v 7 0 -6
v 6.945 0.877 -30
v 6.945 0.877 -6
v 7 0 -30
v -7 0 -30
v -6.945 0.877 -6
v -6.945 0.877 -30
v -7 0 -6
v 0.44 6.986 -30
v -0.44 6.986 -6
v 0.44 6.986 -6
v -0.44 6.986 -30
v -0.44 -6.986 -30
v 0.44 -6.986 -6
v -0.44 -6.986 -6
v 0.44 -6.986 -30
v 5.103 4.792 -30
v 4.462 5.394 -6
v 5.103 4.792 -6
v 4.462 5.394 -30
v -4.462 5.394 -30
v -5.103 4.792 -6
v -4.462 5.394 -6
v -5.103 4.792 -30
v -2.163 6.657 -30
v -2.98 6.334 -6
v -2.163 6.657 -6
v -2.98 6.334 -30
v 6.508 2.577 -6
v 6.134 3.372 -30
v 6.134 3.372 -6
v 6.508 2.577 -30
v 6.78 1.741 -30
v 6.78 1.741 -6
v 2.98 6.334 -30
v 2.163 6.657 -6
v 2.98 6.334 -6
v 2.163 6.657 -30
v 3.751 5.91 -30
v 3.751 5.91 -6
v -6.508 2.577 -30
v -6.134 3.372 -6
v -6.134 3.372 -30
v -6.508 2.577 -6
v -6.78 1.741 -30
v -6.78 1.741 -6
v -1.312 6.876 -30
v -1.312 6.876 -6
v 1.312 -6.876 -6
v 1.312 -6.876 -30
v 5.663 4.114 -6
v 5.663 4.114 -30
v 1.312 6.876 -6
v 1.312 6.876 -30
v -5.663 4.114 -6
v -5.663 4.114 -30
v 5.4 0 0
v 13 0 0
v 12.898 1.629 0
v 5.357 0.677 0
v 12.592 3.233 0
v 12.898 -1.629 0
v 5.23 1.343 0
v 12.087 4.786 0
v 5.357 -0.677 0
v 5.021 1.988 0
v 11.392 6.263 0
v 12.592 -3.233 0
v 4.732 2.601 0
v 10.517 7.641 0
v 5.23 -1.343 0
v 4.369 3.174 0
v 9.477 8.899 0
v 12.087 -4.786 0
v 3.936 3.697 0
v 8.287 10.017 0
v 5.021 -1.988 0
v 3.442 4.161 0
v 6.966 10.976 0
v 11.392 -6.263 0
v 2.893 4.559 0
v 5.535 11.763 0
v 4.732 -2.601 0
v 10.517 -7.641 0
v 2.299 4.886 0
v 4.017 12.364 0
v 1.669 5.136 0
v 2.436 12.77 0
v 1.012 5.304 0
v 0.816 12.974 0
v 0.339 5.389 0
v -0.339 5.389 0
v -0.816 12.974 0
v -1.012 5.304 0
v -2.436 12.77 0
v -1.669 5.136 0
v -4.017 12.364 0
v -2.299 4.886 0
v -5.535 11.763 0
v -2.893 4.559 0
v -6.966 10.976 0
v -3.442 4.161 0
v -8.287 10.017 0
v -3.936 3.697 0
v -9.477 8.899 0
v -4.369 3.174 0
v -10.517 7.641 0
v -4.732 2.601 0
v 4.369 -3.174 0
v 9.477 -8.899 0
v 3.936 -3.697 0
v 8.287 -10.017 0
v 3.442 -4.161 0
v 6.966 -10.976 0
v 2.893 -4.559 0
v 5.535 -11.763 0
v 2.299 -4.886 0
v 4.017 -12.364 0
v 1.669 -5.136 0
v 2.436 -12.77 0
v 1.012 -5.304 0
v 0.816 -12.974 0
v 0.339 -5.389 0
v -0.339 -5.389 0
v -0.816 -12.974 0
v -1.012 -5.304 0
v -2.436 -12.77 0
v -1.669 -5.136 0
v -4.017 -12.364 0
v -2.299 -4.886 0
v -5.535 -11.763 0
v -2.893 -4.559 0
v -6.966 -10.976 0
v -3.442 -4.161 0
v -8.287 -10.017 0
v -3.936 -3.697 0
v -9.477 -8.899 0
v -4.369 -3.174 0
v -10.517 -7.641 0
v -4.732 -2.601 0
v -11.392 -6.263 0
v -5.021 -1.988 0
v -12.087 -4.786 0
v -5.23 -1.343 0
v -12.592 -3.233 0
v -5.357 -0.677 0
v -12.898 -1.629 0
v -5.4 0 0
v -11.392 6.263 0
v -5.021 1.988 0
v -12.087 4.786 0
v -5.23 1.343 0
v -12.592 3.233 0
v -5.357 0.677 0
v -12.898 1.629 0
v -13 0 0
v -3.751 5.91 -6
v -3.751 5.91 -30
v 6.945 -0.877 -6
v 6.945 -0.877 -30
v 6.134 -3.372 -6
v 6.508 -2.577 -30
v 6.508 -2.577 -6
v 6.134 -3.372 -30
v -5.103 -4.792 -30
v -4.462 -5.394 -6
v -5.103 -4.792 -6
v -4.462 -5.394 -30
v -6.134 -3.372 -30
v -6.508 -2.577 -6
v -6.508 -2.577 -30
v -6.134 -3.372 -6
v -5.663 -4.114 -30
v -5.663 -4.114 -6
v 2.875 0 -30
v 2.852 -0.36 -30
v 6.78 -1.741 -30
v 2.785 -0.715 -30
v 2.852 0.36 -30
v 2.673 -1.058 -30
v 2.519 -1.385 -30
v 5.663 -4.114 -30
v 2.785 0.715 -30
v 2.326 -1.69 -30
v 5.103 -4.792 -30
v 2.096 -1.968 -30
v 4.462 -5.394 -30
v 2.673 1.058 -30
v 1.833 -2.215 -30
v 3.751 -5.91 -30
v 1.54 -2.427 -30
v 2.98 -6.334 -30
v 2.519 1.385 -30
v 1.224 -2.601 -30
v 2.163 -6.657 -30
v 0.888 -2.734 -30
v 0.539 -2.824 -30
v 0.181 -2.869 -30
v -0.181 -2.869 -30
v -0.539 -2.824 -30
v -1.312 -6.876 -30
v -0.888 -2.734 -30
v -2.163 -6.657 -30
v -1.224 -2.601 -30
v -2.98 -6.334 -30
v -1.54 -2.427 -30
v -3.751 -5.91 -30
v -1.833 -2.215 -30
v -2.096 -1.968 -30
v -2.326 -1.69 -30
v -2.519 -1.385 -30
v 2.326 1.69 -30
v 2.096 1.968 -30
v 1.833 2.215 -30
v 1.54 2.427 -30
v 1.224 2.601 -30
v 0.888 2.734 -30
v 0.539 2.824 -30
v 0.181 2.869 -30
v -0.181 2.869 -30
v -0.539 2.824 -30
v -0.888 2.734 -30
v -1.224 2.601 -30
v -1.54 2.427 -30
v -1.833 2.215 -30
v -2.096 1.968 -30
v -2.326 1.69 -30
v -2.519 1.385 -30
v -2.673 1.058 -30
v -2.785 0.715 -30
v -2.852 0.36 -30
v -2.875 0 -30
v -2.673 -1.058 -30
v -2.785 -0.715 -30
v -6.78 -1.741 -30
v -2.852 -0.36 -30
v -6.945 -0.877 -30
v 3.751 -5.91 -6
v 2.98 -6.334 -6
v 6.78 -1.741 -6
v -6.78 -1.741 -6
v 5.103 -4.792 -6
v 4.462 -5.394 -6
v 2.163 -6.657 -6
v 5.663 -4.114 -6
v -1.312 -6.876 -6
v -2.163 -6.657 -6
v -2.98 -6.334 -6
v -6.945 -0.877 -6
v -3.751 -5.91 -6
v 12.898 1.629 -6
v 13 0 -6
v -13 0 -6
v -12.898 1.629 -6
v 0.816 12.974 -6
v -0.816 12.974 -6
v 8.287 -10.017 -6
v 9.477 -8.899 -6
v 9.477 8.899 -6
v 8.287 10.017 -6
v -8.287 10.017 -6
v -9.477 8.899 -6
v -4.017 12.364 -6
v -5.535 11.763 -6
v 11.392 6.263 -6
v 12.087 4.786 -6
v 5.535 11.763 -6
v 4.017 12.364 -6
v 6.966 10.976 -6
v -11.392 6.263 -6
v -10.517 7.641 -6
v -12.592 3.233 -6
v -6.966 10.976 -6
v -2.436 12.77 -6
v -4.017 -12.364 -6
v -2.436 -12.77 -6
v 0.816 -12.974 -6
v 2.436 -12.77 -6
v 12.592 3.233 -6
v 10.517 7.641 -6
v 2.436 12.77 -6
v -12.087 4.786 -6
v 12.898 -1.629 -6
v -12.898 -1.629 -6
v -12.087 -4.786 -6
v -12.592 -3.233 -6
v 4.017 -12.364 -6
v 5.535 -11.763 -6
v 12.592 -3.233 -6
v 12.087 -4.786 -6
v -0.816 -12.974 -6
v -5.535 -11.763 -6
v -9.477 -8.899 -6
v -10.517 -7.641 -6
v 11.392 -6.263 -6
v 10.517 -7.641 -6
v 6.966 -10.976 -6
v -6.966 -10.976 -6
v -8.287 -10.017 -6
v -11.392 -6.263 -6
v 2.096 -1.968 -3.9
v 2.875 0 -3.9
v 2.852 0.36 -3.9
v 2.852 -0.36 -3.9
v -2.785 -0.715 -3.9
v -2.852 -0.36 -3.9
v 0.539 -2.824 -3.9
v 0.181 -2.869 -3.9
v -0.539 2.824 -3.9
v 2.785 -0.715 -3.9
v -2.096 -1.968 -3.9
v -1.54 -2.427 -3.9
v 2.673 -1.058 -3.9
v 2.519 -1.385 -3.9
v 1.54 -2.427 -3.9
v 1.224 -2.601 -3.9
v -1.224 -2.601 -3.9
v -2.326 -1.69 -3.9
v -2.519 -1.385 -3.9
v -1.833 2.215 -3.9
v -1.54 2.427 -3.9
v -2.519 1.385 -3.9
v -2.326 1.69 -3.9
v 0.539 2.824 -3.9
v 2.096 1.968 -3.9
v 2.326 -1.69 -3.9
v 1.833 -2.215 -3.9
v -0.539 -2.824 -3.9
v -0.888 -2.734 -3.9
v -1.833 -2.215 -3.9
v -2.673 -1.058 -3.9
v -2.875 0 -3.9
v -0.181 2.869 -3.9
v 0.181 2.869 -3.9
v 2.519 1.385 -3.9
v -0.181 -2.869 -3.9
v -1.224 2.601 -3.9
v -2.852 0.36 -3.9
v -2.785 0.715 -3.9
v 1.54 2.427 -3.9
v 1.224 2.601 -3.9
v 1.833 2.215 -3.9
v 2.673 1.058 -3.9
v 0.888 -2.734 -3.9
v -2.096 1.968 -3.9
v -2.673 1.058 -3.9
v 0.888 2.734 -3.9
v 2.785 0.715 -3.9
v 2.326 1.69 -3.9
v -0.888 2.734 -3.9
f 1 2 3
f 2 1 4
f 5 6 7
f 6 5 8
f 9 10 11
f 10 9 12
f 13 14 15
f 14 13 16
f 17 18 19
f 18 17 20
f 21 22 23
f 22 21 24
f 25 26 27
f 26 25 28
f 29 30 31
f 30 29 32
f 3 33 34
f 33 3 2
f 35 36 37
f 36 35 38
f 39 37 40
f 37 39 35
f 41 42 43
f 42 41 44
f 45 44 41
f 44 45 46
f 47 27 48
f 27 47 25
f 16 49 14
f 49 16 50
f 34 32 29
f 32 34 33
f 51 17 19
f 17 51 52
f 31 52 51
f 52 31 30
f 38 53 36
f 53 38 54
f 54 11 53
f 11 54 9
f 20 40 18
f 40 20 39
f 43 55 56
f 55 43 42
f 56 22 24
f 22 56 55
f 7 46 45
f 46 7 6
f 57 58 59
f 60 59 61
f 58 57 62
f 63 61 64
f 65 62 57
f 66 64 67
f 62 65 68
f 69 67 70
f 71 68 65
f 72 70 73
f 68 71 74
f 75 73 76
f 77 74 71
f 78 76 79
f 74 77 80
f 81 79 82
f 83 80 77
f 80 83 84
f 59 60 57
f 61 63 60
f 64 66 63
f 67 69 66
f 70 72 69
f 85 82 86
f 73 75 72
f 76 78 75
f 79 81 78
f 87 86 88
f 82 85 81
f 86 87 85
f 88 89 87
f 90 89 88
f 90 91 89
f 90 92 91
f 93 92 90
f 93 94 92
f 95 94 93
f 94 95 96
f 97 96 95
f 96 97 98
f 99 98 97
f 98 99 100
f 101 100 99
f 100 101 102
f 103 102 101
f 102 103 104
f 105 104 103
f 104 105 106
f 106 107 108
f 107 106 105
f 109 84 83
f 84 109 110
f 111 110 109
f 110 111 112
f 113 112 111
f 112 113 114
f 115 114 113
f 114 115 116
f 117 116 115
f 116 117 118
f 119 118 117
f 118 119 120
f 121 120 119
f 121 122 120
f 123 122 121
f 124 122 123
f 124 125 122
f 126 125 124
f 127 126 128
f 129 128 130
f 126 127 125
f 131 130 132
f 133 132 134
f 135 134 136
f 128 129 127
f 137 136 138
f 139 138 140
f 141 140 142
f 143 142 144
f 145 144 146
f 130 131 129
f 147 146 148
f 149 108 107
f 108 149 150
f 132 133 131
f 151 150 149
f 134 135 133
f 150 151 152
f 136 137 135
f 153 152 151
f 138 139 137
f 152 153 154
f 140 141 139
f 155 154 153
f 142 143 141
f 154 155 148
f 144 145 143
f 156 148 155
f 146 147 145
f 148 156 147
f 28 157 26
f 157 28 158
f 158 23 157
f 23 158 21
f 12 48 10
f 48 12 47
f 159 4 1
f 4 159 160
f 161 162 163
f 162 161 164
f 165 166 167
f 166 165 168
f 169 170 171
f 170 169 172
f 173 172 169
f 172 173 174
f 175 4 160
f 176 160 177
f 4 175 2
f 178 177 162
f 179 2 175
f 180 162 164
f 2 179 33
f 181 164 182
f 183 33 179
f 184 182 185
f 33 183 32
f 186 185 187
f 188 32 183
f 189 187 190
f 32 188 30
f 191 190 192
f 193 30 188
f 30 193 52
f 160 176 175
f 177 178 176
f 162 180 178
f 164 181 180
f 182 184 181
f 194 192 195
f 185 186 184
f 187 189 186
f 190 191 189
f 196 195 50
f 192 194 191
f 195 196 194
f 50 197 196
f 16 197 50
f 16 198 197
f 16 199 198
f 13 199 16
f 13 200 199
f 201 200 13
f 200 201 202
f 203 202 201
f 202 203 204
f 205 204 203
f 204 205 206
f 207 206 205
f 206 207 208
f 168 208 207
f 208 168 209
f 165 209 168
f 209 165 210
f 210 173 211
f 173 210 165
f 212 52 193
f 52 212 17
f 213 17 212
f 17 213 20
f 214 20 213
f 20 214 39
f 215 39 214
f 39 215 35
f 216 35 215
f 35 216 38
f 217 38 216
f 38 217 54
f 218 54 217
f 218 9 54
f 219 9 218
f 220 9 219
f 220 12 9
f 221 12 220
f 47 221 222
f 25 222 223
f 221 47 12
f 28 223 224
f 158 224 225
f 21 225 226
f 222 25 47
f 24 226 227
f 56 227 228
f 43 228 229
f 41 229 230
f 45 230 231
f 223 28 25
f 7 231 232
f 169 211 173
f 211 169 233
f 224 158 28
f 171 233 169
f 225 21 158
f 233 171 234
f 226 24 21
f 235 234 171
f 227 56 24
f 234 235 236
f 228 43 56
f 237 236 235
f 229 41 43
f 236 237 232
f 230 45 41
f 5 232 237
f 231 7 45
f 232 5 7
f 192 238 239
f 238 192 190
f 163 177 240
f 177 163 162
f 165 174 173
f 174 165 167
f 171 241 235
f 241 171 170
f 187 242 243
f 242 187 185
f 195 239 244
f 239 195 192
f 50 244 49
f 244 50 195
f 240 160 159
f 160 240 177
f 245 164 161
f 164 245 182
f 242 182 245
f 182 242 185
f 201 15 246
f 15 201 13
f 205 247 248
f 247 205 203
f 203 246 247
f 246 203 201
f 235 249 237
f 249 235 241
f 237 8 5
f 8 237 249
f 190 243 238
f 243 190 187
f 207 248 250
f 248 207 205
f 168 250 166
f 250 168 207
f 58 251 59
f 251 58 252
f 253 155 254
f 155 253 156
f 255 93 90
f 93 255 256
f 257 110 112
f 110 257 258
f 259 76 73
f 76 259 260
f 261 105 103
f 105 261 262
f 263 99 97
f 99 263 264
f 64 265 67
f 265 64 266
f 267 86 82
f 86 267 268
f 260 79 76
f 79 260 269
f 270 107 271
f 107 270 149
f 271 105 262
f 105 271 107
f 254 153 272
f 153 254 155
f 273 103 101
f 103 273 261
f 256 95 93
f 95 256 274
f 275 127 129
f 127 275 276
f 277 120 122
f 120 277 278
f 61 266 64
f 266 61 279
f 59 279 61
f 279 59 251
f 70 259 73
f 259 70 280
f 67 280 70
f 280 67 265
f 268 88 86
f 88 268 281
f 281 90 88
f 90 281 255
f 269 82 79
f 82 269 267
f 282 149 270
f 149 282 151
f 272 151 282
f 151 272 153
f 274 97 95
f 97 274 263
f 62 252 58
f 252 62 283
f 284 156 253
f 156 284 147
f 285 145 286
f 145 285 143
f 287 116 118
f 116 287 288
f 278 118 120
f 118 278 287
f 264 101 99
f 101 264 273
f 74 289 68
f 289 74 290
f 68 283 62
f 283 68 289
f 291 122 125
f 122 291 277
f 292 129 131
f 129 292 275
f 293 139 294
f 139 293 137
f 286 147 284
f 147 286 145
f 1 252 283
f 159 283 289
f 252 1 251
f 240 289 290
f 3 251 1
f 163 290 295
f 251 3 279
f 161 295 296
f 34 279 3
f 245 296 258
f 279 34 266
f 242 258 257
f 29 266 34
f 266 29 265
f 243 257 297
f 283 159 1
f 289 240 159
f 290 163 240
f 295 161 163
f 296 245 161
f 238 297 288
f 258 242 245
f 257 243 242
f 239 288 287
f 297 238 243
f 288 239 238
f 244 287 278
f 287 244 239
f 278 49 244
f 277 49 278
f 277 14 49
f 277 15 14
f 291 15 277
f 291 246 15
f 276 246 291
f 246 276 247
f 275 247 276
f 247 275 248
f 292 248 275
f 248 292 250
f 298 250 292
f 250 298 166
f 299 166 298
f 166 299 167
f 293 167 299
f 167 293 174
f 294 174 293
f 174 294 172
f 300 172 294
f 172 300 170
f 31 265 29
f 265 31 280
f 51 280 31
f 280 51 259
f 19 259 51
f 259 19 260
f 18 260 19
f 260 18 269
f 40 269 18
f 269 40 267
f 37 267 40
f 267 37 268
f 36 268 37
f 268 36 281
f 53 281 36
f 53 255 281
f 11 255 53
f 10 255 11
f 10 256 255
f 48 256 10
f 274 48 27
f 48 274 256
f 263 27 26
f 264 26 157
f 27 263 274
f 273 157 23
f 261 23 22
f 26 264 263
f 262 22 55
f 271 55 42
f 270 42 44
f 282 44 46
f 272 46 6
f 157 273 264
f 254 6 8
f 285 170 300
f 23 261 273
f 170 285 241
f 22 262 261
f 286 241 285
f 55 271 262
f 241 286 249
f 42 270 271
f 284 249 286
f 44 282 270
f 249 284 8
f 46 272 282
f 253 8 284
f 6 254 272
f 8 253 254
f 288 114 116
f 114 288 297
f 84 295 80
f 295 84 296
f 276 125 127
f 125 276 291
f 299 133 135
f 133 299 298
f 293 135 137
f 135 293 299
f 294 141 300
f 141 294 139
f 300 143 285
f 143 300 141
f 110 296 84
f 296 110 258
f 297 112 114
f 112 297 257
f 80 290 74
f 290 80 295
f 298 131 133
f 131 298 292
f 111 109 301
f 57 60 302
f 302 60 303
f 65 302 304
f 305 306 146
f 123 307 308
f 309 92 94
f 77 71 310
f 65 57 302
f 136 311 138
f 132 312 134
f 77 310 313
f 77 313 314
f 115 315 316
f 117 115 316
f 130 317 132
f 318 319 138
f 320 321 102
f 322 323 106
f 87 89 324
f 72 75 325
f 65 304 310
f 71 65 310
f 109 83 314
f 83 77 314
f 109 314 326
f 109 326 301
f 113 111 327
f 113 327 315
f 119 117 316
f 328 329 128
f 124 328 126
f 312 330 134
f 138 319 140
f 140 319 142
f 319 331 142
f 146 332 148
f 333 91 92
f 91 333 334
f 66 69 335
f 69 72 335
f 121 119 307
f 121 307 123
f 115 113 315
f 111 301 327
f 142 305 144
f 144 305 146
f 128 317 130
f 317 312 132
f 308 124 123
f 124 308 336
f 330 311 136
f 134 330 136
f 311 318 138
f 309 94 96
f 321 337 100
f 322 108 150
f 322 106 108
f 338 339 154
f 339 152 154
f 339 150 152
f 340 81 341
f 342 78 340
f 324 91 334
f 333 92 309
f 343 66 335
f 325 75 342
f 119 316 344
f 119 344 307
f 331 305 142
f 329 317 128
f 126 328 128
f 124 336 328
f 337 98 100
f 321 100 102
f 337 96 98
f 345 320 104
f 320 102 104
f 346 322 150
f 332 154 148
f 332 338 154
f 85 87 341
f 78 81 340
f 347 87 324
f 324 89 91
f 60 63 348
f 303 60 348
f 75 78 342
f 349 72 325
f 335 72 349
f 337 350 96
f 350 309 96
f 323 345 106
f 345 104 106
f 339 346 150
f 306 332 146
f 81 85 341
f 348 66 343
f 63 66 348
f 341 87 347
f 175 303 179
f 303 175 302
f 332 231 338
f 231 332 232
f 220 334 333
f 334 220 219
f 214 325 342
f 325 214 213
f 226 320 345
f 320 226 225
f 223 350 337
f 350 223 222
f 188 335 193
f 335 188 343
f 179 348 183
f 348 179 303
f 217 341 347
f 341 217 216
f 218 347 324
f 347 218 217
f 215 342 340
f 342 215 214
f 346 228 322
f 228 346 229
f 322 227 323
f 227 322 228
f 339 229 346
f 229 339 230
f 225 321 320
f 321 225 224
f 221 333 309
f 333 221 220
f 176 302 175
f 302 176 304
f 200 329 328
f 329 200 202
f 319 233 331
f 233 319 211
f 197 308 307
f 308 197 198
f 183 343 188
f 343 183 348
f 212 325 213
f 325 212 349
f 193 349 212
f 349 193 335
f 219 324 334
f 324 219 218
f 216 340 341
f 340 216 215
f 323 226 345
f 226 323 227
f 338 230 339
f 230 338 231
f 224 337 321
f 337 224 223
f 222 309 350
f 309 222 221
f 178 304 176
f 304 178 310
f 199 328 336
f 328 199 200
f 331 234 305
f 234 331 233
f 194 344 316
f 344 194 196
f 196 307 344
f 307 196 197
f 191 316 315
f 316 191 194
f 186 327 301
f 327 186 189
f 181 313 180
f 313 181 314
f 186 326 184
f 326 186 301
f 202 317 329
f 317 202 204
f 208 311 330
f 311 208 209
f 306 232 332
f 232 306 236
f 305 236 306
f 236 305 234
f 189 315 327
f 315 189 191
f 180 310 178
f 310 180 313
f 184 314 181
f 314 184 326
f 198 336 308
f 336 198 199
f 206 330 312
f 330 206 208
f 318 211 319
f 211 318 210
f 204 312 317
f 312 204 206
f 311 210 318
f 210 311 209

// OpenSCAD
$fn = 50;


difference() {
	union() {
		translate(v = [0, 0, -30.0000000000]) {
			cylinder(h = 30, r = 7.0000000000);
		}
		translate(v = [0, 0, -6.0000000000]) {
			cylinder(h = 6, r = 13.0000000000);
		}
	}
	union() {
		translate(v = [0, 0, 0]) {
			rotate(a = [0, 0, 0]) {
				difference() {
					union() {
						#translate(v = [0, 0, -30.0000000000]) {
							cylinder(h = 30, r = 2.6000000000);
						}
						#translate(v = [0, 0, -3.9000000000]) {
							cylinder(h = 3.9000000000, r = 7.0000000000, r1 = 2.8750000000, r2 = 5.4000000000);
						}
						#translate(v = [0, 0, -30.0000000000]) {
							cylinder(h = 30, r = 2.8750000000);
						}
						#translate(v = [0, 0, -30.0000000000]) {
							cylinder(h = 30, r = 2.6000000000);
						}
					}
					union();
				}
			}
		}
	}
}
